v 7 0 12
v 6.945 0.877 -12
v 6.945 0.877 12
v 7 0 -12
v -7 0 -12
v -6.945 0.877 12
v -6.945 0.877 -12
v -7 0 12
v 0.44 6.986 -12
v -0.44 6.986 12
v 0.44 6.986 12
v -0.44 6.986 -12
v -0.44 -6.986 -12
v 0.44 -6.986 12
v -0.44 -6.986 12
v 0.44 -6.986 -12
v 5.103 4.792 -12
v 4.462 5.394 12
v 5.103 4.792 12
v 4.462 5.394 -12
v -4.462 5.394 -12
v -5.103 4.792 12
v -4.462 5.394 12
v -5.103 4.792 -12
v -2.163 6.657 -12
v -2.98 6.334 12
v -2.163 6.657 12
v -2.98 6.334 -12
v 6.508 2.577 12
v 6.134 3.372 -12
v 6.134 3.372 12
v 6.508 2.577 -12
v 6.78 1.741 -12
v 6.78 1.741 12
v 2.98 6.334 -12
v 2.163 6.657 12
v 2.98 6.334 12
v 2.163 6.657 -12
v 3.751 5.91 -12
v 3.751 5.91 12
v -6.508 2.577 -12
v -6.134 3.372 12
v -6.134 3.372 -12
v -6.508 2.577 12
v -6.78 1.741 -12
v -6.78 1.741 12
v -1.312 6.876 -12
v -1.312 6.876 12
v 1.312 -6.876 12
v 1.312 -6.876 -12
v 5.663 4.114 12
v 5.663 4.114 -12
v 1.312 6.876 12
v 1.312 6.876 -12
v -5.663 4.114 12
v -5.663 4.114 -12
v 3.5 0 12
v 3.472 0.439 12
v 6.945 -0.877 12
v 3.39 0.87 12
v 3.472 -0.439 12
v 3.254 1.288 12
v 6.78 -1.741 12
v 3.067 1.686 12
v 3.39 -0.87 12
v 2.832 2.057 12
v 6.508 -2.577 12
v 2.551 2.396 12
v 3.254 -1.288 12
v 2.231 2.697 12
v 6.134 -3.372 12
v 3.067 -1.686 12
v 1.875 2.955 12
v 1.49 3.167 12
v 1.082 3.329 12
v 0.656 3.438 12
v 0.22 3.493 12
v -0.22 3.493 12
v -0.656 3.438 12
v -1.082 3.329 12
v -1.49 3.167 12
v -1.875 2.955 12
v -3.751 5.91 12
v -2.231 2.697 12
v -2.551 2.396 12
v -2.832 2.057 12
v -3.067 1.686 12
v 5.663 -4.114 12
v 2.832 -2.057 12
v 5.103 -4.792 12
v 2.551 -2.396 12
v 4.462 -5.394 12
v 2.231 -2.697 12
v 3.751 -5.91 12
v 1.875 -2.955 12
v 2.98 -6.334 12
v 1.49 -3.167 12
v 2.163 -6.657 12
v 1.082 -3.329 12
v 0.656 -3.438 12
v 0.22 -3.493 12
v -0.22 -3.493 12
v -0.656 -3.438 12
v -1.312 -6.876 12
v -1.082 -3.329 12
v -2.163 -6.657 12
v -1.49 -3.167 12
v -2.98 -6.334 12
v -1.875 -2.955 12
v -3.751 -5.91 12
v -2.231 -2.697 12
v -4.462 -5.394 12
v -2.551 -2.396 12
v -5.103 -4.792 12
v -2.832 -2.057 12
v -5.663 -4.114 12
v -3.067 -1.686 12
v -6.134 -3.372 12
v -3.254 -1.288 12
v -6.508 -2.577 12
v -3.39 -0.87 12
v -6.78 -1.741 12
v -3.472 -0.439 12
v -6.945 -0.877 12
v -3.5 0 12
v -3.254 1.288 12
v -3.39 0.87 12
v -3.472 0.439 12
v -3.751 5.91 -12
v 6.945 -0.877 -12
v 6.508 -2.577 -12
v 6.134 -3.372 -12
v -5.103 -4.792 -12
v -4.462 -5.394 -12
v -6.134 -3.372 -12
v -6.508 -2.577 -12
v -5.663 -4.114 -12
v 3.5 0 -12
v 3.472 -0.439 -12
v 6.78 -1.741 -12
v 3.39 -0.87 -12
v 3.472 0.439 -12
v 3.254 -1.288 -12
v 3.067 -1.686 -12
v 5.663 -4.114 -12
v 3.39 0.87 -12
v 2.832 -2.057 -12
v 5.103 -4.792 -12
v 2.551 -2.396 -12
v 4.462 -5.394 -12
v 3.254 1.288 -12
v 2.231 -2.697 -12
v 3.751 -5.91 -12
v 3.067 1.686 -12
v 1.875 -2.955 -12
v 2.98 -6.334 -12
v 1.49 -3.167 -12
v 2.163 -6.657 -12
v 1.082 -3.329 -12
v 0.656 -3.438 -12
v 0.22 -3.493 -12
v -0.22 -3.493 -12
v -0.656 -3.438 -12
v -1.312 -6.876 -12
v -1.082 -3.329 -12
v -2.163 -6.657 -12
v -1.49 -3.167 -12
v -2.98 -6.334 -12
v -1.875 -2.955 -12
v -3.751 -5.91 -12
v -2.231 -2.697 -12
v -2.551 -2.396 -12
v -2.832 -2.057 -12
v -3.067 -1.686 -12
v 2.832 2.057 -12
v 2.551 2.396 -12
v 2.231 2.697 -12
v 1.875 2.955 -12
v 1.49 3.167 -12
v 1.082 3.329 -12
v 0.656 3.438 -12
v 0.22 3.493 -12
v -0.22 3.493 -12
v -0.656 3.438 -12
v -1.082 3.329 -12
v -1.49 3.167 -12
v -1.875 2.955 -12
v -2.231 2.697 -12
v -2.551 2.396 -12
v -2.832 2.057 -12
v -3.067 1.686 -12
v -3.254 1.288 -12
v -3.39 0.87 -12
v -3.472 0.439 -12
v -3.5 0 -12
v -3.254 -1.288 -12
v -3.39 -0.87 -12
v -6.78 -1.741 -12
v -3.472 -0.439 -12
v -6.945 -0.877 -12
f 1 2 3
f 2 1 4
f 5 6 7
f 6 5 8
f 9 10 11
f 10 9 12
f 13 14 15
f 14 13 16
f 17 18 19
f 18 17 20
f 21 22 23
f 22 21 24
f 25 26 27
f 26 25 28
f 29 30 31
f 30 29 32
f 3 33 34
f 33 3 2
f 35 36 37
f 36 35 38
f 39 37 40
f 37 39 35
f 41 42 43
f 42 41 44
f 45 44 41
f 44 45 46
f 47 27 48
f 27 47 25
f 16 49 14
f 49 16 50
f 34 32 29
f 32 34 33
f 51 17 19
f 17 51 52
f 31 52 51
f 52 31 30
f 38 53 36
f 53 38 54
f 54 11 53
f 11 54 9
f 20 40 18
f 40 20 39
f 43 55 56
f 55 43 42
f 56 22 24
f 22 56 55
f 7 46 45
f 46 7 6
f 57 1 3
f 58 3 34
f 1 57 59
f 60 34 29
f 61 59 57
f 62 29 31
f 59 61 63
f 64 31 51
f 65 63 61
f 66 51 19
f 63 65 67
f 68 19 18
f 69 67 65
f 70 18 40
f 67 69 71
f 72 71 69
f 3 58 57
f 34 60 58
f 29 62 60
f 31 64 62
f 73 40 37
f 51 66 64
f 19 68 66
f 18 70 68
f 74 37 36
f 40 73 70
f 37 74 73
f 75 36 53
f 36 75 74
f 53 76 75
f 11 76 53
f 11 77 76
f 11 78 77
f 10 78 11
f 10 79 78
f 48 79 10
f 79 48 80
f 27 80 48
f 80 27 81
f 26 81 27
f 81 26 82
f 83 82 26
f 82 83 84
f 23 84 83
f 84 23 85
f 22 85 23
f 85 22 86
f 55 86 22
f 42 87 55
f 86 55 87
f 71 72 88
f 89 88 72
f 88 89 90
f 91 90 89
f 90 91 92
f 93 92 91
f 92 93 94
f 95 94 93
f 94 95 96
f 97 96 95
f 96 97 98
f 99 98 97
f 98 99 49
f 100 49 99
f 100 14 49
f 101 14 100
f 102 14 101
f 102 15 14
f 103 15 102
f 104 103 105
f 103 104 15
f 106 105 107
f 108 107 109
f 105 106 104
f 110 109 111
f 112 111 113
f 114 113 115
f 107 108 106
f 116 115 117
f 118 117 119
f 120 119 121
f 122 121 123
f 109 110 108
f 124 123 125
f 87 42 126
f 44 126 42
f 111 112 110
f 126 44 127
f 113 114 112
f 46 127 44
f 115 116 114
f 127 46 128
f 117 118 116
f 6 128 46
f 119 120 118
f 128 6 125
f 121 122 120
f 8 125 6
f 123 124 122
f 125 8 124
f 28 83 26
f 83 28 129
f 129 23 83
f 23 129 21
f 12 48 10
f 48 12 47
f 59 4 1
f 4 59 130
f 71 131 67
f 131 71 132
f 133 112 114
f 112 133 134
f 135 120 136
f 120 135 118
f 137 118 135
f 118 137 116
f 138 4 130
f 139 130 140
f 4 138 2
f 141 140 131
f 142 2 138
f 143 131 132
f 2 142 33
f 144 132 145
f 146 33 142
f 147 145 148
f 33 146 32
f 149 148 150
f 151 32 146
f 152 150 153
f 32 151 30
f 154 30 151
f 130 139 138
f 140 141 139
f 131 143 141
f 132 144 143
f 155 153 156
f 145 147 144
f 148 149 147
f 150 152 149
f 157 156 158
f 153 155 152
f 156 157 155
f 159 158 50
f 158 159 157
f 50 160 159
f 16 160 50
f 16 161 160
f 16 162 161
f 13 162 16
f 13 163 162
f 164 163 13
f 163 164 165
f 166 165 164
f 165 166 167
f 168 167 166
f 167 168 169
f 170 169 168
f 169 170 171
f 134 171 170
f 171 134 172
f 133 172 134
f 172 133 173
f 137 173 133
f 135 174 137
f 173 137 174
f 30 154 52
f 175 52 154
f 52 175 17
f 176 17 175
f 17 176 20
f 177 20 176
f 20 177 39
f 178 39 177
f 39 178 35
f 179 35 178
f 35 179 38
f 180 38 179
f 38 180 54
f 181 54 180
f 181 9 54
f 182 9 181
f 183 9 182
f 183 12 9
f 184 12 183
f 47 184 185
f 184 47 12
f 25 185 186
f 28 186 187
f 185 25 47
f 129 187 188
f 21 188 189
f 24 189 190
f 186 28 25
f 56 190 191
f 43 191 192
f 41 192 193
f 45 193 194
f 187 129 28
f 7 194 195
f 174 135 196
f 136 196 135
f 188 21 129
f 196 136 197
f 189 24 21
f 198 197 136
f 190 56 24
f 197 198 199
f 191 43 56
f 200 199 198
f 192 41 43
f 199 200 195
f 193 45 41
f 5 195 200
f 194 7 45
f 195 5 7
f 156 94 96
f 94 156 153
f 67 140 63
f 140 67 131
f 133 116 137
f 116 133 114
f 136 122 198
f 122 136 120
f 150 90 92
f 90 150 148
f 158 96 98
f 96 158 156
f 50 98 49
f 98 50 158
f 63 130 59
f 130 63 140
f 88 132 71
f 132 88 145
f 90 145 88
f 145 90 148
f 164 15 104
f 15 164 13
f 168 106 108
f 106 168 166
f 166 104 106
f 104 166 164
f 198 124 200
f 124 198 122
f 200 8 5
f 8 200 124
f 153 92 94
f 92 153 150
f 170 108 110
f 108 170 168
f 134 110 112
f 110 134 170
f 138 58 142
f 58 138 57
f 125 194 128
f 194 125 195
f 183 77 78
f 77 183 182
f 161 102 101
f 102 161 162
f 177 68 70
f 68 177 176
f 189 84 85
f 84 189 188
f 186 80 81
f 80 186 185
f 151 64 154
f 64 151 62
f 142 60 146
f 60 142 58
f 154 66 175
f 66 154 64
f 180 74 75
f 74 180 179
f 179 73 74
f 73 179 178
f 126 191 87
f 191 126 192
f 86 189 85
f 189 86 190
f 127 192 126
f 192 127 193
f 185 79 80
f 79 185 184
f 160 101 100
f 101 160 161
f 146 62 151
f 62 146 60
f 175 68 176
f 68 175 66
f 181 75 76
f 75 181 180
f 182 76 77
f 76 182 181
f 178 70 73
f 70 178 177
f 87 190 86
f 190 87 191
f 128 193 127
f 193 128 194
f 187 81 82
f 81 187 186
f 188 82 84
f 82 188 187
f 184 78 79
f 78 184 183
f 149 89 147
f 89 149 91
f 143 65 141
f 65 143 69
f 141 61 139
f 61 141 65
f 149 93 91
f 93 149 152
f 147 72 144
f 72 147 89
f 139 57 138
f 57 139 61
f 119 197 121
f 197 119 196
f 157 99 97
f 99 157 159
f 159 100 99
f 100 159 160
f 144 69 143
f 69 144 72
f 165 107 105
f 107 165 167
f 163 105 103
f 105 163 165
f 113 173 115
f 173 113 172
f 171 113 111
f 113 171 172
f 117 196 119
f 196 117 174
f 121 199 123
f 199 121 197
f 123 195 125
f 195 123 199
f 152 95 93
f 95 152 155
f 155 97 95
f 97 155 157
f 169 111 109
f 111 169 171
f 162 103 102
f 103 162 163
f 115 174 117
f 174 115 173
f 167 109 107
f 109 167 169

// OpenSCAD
$fn = 50;


difference() {
	union() {
		translate(v = [0, 0, -12.0000000000]) {
			cylinder(h = 24, r = 7.0000000000);
		}
	}
	union() {
		translate(v = [0, 0, -100.0000000000]) {
			cylinder(h = 200, r = 3.5000000000);
		}
	}
}
